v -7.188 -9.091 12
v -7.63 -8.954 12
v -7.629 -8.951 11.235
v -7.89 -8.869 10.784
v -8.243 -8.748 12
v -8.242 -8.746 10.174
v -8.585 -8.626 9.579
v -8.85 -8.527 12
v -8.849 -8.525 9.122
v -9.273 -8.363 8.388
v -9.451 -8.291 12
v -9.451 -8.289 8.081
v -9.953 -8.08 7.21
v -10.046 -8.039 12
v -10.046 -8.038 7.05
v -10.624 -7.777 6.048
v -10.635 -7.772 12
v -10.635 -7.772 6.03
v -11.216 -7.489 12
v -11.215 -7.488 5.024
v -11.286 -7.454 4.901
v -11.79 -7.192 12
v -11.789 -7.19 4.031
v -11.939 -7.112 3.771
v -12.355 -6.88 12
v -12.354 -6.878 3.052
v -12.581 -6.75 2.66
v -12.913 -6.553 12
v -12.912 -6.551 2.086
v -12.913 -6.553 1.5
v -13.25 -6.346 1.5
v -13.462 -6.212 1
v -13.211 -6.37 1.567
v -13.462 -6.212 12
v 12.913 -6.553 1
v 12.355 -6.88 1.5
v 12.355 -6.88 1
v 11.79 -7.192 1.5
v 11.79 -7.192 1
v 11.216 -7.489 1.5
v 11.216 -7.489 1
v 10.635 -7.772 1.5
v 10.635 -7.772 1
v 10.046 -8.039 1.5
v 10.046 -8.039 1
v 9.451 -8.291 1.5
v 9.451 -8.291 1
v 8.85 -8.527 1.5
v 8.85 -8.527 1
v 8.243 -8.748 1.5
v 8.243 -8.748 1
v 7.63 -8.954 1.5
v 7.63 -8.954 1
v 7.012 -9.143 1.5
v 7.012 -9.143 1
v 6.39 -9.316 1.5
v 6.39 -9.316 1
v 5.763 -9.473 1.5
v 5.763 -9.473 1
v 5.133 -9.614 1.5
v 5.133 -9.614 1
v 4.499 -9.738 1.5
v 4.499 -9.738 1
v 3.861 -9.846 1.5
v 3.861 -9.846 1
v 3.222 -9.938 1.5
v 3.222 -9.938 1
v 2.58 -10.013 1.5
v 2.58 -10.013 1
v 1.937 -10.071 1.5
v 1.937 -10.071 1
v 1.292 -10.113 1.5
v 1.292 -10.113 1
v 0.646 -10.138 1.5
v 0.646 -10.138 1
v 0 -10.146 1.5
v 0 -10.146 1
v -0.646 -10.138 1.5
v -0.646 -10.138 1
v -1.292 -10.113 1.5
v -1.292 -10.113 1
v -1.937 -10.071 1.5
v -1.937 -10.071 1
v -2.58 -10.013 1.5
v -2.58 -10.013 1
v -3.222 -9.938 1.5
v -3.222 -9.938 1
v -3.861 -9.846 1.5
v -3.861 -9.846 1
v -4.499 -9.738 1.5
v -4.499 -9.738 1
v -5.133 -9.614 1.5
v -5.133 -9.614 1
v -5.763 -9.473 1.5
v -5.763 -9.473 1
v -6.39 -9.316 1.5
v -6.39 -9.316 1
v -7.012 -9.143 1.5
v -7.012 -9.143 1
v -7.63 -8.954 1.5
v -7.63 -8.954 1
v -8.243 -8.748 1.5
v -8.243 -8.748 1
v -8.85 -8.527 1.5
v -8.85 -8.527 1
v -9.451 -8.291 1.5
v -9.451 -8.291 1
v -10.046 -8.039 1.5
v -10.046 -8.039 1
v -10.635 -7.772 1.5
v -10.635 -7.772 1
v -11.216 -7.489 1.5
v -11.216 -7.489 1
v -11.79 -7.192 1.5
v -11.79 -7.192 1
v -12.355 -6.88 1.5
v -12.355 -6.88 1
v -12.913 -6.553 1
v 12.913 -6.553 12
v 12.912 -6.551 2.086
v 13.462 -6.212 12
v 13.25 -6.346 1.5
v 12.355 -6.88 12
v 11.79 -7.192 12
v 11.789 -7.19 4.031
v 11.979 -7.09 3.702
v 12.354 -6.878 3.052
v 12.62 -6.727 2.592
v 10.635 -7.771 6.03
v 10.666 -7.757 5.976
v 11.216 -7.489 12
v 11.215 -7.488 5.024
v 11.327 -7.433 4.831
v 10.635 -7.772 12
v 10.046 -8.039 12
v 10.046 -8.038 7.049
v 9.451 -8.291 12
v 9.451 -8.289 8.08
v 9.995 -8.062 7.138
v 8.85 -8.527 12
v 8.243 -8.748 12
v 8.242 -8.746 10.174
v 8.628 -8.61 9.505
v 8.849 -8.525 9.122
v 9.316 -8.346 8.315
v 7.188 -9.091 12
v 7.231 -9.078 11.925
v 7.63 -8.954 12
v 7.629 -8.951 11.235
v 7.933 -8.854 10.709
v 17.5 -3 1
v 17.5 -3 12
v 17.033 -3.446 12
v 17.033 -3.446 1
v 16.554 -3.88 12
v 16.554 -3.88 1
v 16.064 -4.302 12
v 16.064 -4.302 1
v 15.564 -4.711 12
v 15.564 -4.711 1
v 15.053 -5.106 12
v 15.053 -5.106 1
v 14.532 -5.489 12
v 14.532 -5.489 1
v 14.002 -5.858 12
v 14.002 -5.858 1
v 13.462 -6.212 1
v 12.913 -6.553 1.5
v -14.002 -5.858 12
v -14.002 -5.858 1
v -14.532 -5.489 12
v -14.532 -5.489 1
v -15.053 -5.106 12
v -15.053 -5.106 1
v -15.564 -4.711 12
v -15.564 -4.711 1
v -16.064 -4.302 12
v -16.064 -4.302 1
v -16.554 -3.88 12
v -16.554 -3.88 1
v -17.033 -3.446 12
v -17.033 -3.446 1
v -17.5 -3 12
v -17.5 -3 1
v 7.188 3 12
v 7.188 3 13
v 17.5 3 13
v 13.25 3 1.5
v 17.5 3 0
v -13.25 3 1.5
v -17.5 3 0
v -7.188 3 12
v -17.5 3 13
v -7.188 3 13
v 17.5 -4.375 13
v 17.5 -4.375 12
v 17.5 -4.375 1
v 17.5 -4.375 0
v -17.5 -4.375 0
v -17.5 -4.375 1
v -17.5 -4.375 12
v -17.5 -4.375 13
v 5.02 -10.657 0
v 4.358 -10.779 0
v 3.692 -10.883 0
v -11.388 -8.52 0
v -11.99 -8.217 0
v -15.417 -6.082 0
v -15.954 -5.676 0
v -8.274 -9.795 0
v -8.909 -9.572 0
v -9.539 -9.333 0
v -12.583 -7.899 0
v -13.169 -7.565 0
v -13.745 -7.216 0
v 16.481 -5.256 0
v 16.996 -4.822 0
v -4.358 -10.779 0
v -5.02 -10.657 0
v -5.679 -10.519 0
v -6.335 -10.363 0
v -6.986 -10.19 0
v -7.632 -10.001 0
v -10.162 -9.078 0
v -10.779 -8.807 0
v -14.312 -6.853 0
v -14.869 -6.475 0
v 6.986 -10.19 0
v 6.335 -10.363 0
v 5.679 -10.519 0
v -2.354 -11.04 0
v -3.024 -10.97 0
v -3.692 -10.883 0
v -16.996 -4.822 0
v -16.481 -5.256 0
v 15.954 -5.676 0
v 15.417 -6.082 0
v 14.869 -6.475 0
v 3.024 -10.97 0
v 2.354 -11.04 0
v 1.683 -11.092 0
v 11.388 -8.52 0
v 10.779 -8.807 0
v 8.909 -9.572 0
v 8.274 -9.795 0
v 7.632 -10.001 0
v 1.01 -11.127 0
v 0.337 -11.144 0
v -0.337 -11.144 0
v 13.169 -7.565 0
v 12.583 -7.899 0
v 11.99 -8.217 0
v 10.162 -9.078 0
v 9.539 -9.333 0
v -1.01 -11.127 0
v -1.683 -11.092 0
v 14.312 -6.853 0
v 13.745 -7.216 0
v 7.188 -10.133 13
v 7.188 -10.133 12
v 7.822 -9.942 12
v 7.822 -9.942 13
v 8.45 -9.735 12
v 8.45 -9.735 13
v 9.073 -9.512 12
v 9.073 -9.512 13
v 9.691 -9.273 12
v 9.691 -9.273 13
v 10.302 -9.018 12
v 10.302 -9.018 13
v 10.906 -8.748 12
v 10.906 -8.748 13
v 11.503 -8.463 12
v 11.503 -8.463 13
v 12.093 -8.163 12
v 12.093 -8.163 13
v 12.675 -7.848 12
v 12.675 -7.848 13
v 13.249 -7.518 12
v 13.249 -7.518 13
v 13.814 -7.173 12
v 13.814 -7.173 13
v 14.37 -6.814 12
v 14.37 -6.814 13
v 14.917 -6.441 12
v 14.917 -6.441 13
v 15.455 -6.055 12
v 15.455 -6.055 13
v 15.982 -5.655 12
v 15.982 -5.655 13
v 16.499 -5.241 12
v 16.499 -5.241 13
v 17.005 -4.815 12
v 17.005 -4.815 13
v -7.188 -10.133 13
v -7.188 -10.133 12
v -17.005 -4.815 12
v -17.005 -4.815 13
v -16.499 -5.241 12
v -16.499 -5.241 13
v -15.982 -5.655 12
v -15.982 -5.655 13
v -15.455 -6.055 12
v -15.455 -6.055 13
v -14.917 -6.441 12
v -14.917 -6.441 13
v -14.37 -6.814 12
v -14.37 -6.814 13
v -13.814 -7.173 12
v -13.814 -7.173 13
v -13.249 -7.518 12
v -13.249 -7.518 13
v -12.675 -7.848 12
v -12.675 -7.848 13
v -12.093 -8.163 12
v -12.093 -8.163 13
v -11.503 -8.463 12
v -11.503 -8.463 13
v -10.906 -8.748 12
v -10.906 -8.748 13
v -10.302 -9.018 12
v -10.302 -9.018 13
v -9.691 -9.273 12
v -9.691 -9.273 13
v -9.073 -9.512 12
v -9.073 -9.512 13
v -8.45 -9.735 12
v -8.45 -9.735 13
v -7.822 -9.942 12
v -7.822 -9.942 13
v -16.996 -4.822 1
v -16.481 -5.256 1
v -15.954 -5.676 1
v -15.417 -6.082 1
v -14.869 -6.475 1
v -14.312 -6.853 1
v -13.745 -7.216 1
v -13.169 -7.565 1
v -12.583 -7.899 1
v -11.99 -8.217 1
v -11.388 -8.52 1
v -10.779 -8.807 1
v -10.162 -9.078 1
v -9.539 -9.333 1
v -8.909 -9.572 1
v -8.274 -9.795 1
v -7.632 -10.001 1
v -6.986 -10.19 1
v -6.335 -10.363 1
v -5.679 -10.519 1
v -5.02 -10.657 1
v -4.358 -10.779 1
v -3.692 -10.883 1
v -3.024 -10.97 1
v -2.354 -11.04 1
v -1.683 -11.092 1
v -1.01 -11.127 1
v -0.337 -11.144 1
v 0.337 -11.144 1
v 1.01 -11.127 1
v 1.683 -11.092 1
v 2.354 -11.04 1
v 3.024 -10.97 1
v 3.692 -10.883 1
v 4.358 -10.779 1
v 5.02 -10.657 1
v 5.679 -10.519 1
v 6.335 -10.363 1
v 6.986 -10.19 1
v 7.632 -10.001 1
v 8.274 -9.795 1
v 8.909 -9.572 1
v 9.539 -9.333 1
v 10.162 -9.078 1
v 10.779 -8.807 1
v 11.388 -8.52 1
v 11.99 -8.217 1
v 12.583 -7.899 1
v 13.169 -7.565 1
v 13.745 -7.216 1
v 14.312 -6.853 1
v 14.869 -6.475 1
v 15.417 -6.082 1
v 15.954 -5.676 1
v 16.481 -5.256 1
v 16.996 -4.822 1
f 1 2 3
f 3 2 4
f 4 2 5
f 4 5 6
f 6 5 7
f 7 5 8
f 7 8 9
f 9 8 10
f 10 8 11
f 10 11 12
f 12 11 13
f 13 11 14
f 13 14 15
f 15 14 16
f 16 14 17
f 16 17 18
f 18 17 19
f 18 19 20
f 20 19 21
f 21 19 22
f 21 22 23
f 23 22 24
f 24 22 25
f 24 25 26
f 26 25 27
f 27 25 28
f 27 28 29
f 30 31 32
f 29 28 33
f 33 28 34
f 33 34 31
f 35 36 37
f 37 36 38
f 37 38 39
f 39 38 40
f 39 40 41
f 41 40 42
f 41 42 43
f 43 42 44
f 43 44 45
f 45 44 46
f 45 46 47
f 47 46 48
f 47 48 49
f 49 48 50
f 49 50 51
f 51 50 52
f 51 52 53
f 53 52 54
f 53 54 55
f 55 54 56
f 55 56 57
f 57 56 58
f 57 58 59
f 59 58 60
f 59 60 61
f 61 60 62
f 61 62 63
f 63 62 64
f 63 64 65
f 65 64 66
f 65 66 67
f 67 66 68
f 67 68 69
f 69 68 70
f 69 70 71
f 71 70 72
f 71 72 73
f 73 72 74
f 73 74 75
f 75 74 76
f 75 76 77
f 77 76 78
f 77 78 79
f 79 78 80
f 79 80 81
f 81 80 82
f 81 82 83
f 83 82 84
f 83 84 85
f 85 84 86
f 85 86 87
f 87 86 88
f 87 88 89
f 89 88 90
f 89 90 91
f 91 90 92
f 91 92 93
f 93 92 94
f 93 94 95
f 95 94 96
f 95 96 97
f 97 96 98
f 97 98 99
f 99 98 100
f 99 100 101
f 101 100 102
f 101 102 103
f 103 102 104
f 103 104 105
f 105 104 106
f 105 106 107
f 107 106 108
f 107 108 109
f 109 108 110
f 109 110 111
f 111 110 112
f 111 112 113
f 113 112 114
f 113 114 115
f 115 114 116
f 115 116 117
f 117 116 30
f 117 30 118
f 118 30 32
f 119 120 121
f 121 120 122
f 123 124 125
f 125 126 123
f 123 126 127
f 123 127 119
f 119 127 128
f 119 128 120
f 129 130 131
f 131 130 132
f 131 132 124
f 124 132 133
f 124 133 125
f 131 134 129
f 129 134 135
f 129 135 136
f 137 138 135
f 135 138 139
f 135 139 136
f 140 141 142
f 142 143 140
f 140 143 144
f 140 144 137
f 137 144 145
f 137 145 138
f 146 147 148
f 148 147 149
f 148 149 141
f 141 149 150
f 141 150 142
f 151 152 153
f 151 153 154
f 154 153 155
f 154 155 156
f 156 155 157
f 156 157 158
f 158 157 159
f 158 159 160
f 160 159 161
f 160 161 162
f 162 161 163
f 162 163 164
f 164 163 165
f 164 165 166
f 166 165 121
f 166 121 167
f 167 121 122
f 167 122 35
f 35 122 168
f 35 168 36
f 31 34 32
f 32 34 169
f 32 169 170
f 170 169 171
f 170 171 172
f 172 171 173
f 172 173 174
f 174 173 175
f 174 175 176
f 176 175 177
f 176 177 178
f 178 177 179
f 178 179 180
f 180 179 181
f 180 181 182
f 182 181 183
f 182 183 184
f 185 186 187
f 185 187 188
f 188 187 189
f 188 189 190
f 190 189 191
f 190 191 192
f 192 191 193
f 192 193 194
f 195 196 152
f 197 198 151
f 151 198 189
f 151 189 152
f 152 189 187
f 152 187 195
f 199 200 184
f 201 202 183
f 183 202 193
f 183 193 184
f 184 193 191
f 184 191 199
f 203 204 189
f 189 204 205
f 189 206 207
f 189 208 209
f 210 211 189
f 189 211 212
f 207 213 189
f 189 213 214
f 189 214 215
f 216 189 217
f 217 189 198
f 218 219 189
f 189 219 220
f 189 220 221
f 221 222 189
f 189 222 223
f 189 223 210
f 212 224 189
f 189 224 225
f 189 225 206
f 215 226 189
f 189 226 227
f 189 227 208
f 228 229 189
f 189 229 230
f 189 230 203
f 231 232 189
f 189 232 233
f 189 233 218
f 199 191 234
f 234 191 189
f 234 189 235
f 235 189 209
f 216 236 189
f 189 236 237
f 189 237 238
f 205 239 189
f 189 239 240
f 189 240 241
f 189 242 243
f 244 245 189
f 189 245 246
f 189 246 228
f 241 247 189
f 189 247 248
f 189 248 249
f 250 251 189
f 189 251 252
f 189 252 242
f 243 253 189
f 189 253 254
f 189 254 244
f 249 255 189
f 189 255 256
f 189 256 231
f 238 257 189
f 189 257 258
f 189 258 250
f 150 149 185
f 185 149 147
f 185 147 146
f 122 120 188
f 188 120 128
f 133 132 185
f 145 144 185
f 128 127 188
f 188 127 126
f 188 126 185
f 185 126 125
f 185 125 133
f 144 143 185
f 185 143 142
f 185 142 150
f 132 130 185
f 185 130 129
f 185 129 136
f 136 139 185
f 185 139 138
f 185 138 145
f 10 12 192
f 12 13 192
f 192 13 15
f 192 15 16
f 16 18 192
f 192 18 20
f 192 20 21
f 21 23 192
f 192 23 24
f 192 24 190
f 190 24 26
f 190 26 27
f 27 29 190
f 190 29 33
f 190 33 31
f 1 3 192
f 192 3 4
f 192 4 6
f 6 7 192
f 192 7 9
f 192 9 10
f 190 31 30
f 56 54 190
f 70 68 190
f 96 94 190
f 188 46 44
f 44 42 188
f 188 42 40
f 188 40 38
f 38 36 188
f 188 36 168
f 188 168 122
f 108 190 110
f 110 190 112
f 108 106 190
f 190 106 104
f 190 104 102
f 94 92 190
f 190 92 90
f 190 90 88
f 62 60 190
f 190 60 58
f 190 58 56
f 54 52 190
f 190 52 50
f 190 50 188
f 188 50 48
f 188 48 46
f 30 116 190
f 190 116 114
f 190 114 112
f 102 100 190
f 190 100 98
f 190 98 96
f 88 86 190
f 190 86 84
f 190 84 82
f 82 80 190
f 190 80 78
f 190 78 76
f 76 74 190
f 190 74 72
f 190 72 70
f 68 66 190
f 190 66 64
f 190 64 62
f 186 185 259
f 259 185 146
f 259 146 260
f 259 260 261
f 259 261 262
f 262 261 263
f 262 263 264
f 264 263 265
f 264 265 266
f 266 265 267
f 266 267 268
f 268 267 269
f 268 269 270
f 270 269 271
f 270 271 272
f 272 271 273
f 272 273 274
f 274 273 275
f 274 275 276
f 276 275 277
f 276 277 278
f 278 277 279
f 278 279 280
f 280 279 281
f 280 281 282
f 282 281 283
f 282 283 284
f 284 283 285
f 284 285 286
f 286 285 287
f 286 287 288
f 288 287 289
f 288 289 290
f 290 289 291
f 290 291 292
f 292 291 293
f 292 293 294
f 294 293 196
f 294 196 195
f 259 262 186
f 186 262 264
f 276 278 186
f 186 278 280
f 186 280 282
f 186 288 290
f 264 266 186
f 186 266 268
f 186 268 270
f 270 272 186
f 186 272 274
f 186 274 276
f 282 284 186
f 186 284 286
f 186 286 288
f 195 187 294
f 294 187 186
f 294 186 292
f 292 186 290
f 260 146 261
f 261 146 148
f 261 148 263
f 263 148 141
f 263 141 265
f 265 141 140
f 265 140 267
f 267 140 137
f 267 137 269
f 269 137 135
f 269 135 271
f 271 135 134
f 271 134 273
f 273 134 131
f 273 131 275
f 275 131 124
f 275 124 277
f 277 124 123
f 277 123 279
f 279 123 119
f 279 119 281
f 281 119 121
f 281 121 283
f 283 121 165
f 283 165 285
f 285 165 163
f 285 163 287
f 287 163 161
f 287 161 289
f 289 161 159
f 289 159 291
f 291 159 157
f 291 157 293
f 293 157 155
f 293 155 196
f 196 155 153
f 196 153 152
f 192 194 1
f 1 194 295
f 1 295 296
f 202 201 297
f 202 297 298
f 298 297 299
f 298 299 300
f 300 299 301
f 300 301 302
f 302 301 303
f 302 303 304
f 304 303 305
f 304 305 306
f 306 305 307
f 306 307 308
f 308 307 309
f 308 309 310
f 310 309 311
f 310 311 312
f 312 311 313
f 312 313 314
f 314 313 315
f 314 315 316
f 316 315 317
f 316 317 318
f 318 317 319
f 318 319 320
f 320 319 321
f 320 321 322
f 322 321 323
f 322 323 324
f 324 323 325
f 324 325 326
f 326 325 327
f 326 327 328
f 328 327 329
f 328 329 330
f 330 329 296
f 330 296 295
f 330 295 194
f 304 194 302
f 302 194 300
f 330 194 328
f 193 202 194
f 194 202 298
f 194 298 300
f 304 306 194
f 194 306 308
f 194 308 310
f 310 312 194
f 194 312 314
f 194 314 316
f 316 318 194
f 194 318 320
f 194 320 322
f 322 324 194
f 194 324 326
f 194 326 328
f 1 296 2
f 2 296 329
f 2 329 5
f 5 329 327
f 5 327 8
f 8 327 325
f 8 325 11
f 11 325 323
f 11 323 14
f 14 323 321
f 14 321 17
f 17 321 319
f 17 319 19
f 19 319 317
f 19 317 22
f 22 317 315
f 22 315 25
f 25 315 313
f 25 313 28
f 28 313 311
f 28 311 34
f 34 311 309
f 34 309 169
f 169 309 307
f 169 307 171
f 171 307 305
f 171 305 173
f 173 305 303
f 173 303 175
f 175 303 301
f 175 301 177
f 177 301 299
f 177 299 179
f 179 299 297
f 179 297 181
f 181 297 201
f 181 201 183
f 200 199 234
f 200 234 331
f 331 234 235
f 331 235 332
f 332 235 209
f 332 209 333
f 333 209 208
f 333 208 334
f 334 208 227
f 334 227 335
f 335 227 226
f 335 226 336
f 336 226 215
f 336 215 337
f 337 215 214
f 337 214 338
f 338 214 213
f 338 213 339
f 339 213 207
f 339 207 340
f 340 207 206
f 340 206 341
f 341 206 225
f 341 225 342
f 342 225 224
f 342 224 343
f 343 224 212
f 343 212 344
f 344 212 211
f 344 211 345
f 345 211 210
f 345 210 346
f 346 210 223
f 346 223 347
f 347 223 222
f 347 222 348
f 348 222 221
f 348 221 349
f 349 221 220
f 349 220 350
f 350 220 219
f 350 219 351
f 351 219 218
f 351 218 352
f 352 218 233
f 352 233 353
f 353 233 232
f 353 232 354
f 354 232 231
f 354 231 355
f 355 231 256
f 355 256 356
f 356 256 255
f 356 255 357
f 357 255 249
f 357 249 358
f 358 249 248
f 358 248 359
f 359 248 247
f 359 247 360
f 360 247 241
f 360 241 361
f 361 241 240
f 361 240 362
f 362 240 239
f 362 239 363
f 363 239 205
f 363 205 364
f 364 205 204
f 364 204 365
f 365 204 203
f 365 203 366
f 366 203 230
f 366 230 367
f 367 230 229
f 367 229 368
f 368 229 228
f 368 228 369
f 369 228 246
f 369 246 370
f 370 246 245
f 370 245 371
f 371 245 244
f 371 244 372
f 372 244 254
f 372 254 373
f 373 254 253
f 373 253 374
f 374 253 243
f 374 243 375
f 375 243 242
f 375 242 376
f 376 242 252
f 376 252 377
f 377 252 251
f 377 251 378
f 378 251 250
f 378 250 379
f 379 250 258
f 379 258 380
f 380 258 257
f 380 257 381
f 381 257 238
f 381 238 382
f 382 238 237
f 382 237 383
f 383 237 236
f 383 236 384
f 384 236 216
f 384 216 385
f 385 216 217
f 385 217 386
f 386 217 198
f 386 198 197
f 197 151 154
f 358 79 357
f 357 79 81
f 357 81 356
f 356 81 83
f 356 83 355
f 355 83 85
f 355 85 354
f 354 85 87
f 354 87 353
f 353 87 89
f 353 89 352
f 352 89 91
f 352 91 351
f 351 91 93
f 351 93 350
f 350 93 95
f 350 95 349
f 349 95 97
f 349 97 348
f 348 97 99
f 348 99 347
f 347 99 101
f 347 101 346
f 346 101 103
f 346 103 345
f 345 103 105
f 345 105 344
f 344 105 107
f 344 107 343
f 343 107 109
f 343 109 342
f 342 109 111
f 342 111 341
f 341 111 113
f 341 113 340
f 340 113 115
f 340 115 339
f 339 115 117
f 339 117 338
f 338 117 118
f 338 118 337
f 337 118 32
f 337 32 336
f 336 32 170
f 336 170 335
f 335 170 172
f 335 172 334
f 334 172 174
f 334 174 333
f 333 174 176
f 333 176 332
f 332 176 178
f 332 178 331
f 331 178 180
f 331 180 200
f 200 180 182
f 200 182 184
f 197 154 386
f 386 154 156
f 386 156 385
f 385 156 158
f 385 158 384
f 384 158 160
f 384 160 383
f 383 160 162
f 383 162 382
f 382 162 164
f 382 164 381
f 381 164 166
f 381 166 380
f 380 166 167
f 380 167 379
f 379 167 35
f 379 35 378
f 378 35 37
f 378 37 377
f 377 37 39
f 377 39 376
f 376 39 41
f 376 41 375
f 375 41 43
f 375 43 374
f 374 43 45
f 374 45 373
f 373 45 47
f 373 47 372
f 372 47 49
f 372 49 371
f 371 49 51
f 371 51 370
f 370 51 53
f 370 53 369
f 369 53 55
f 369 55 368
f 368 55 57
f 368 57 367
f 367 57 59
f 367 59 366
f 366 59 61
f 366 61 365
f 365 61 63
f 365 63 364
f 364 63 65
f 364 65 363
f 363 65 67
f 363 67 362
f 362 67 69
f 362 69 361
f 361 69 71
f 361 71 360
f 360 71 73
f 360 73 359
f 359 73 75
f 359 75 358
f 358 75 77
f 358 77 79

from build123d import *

# Parameters (mm, degrees)
SKETCH1_W            = 35
SKETCH1_H            = 6
BOSS_EXTRUDE1_DEPTH  = 12
BOSS_EXTRUDE2_DEPTH  = 12
SKETCH4_W            = 6
SKETCH4_H            = 13.146428929
CUT_EXTRUDE1_DEPTH   = 8
CUT_EXTRUDE2_DEPTH   = 8
LPATTERN2_COUNT      = 10
LPATTERN2_PITCH      = 2
MIRROR1_COPY_1_DEPTH = 8
MIRROR1_COPY_2_DEPTH = 8
MIRROR1_COPY_3_DEPTH = 8
MIRROR1_COPY_4_DEPTH = 8
MIRROR1_COPY_5_DEPTH = 8
MIRROR1_COPY_6_DEPTH = 8
MIRROR1_COPY_7_DEPTH = 8
MIRROR1_COPY_8_DEPTH = 8
MIRROR1_COPY_9_DEPTH = 8
CUT_EXTRUDE3_DEPTH   = 25.961542292
BOSS_EXTRUDE3_DEPTH  = 1
BOSS_EXTRUDE4_DEPTH  = 1


with BuildPart() as part:
    # Sketch1 → Boss-Extrude1 (new body)
    with BuildSketch(Plane.XY):
        Rectangle(SKETCH1_W, SKETCH1_H)
    extrude(amount=BOSS_EXTRUDE1_DEPTH)

    # Sketch2 → Boss-Extrude2 (add)
    with BuildSketch(Plane.XY.offset(12)):
        with BuildLine():
            Line((-17.5, -3), (17.5, -3))
            ThreePointArc((17.5, -3), (0, -10.146428929), (-17.5, -3))
        make_face()
    extrude(amount=-BOSS_EXTRUDE2_DEPTH)

    # Sketch4 → Cut-Extrude1 (cut)
    with BuildSketch(Plane.XY.offset(12)):
        with Locations((0, -3.573214465)):
            Rectangle(SKETCH4_W, SKETCH4_H)
    extrude(amount=-CUT_EXTRUDE1_DEPTH, mode=Mode.SUBTRACT)

    # Sketch5 → Cut-Extrude2 (cut)
    with BuildSketch(Plane.XY.offset(12)):
        with BuildLine():
            Line((3, 2), (3, 4))
            ThreePointArc((3, 4), (3.084360941, 3.705850588), (3.311797753, 3.501123596))
            ThreePointArc((3.311797753, 3.501123596), (3.461937846, 3.442388286), (3.619565217, 3.408543109))
            ThreePointArc((3.619565217, 3.408543109), (3.712771412, 3.358731646), (3.75, 3.259824575))
            Line((3.75, 3.259824575), (3.75, 2.740175425))
            ThreePointArc((3.75, 2.740175425), (3.712771412, 2.641268354), (3.619565217, 2.591456891))
            ThreePointArc((3.619565217, 2.591456891), (3.461937846, 2.557611714), (3.311797753, 2.498876404))
            ThreePointArc((3.311797753, 2.498876404), (3.084360941, 2.294149412), (3, 2))
        make_face()
    cut_extrude2 = extrude(amount=-CUT_EXTRUDE2_DEPTH, mode=Mode.SUBTRACT)

    # LPattern2: Cut-Extrude2 ×10
    with Locations(*[(0, -i * LPATTERN2_PITCH, 0) for i in range(1, LPATTERN2_COUNT)]):
        add(cut_extrude2, mode=Mode.SUBTRACT)

    # Mirror1: Cut-Extrude2 across plane
    add(cut_extrude2.mirror(Plane(origin=(0, 0, 0), x_dir=(0, 0, 1), z_dir=(1, 0, 0))), mode=Mode.SUBTRACT)

    # Mirror1 copy 1 sketch → Mirror1 copy 1 (cut)
    with BuildSketch(Plane(origin=(0, -2, 12), x_dir=(-1, 0, 0), z_dir=(0, 0, 1))):
        with BuildLine():
            Line((3, -2), (3, -4))
            ThreePointArc((3, -4), (3.084360941, -3.705850588), (3.311797753, -3.501123596))
            ThreePointArc((3.311797753, -3.501123596), (3.461937846, -3.442388286), (3.619565217, -3.408543109))
            ThreePointArc((3.619565217, -3.408543109), (3.712771412, -3.358731646), (3.75, -3.259824575))
            Line((3.75, -3.259824575), (3.75, -2.740175425))
            ThreePointArc((3.75, -2.740175425), (3.712771412, -2.641268354), (3.619565217, -2.591456891))
            ThreePointArc((3.619565217, -2.591456891), (3.461937846, -2.557611714), (3.311797753, -2.498876404))
            ThreePointArc((3.311797753, -2.498876404), (3.084360941, -2.294149412), (3, -2))
        make_face()
    extrude(amount=-MIRROR1_COPY_1_DEPTH, mode=Mode.SUBTRACT)

    # Mirror1 copy 2 sketch → Mirror1 copy 2 (cut)
    with BuildSketch(Plane(origin=(0, -4, 12), x_dir=(-1, 0, 0), z_dir=(0, 0, 1))):
        with BuildLine():
            Line((3, -2), (3, -4))
            ThreePointArc((3, -4), (3.084360941, -3.705850588), (3.311797753, -3.501123596))
            ThreePointArc((3.311797753, -3.501123596), (3.461937846, -3.442388286), (3.619565217, -3.408543109))
            ThreePointArc((3.619565217, -3.408543109), (3.712771412, -3.358731646), (3.75, -3.259824575))
            Line((3.75, -3.259824575), (3.75, -2.740175425))
            ThreePointArc((3.75, -2.740175425), (3.712771412, -2.641268354), (3.619565217, -2.591456891))
            ThreePointArc((3.619565217, -2.591456891), (3.461937846, -2.557611714), (3.311797753, -2.498876404))
            ThreePointArc((3.311797753, -2.498876404), (3.084360941, -2.294149412), (3, -2))
        make_face()
    extrude(amount=-MIRROR1_COPY_2_DEPTH, mode=Mode.SUBTRACT)

    # Mirror1 copy 3 sketch → Mirror1 copy 3 (cut)
    with BuildSketch(Plane(origin=(0, -6, 12), x_dir=(-1, 0, 0), z_dir=(0, 0, 1))):
        with BuildLine():
            Line((3, -2), (3, -4))
            ThreePointArc((3, -4), (3.084360941, -3.705850588), (3.311797753, -3.501123596))
            ThreePointArc((3.311797753, -3.501123596), (3.461937846, -3.442388286), (3.619565217, -3.408543109))
            ThreePointArc((3.619565217, -3.408543109), (3.712771412, -3.358731646), (3.75, -3.259824575))
            Line((3.75, -3.259824575), (3.75, -2.740175425))
            ThreePointArc((3.75, -2.740175425), (3.712771412, -2.641268354), (3.619565217, -2.591456891))
            ThreePointArc((3.619565217, -2.591456891), (3.461937846, -2.557611714), (3.311797753, -2.498876404))
            ThreePointArc((3.311797753, -2.498876404), (3.084360941, -2.294149412), (3, -2))
        make_face()
    extrude(amount=-MIRROR1_COPY_3_DEPTH, mode=Mode.SUBTRACT)

    # Mirror1 copy 4 sketch → Mirror1 copy 4 (cut)
    with BuildSketch(Plane(origin=(0, -8, 12), x_dir=(-1, 0, 0), z_dir=(0, 0, 1))):
        with BuildLine():
            Line((3, -2), (3, -4))
            ThreePointArc((3, -4), (3.084360941, -3.705850588), (3.311797753, -3.501123596))
            ThreePointArc((3.311797753, -3.501123596), (3.461937846, -3.442388286), (3.619565217, -3.408543109))
            ThreePointArc((3.619565217, -3.408543109), (3.712771412, -3.358731646), (3.75, -3.259824575))
            Line((3.75, -3.259824575), (3.75, -2.740175425))
            ThreePointArc((3.75, -2.740175425), (3.712771412, -2.641268354), (3.619565217, -2.591456891))
            ThreePointArc((3.619565217, -2.591456891), (3.461937846, -2.557611714), (3.311797753, -2.498876404))
            ThreePointArc((3.311797753, -2.498876404), (3.084360941, -2.294149412), (3, -2))
        make_face()
    extrude(amount=-MIRROR1_COPY_4_DEPTH, mode=Mode.SUBTRACT)

    # Mirror1 copy 5 sketch → Mirror1 copy 5 (cut)
    with BuildSketch(Plane(origin=(0, -10, 12), x_dir=(-1, 0, 0), z_dir=(0, 0, 1))):
        with BuildLine():
            Line((3, -2), (3, -4))
            ThreePointArc((3, -4), (3.084360941, -3.705850588), (3.311797753, -3.501123596))
            ThreePointArc((3.311797753, -3.501123596), (3.461937846, -3.442388286), (3.619565217, -3.408543109))
            ThreePointArc((3.619565217, -3.408543109), (3.712771412, -3.358731646), (3.75, -3.259824575))
            Line((3.75, -3.259824575), (3.75, -2.740175425))
            ThreePointArc((3.75, -2.740175425), (3.712771412, -2.641268354), (3.619565217, -2.591456891))
            ThreePointArc((3.619565217, -2.591456891), (3.461937846, -2.557611714), (3.311797753, -2.498876404))
            ThreePointArc((3.311797753, -2.498876404), (3.084360941, -2.294149412), (3, -2))
        make_face()
    extrude(amount=-MIRROR1_COPY_5_DEPTH, mode=Mode.SUBTRACT)

    # Mirror1 copy 6 sketch → Mirror1 copy 6 (cut)
    with BuildSketch(Plane(origin=(0, -12, 12), x_dir=(-1, 0, 0), z_dir=(0, 0, 1))):
        with BuildLine():
            Line((3, -2), (3, -4))
            ThreePointArc((3, -4), (3.084360941, -3.705850588), (3.311797753, -3.501123596))
            ThreePointArc((3.311797753, -3.501123596), (3.461937846, -3.442388286), (3.619565217, -3.408543109))
            ThreePointArc((3.619565217, -3.408543109), (3.712771412, -3.358731646), (3.75, -3.259824575))
            Line((3.75, -3.259824575), (3.75, -2.740175425))
            ThreePointArc((3.75, -2.740175425), (3.712771412, -2.641268354), (3.619565217, -2.591456891))
            ThreePointArc((3.619565217, -2.591456891), (3.461937846, -2.557611714), (3.311797753, -2.498876404))
            ThreePointArc((3.311797753, -2.498876404), (3.084360941, -2.294149412), (3, -2))
        make_face()
    extrude(amount=-MIRROR1_COPY_6_DEPTH, mode=Mode.SUBTRACT)

    # Mirror1 copy 7 sketch → Mirror1 copy 7 (cut)
    with BuildSketch(Plane(origin=(0, -14, 12), x_dir=(-1, 0, 0), z_dir=(0, 0, 1))):
        with BuildLine():
            Line((3, -2), (3, -4))
            ThreePointArc((3, -4), (3.084360941, -3.705850588), (3.311797753, -3.501123596))
            ThreePointArc((3.311797753, -3.501123596), (3.461937846, -3.442388286), (3.619565217, -3.408543109))
            ThreePointArc((3.619565217, -3.408543109), (3.712771412, -3.358731646), (3.75, -3.259824575))
            Line((3.75, -3.259824575), (3.75, -2.740175425))
            ThreePointArc((3.75, -2.740175425), (3.712771412, -2.641268354), (3.619565217, -2.591456891))
            ThreePointArc((3.619565217, -2.591456891), (3.461937846, -2.557611714), (3.311797753, -2.498876404))
            ThreePointArc((3.311797753, -2.498876404), (3.084360941, -2.294149412), (3, -2))
        make_face()
    extrude(amount=-MIRROR1_COPY_7_DEPTH, mode=Mode.SUBTRACT)

    # Mirror1 copy 8 sketch → Mirror1 copy 8 (cut)
    with BuildSketch(Plane(origin=(0, -16, 12), x_dir=(-1, 0, 0), z_dir=(0, 0, 1))):
        with BuildLine():
            Line((3, -2), (3, -4))
            ThreePointArc((3, -4), (3.084360941, -3.705850588), (3.311797753, -3.501123596))
            ThreePointArc((3.311797753, -3.501123596), (3.461937846, -3.442388286), (3.619565217, -3.408543109))
            ThreePointArc((3.619565217, -3.408543109), (3.712771412, -3.358731646), (3.75, -3.259824575))
            Line((3.75, -3.259824575), (3.75, -2.740175425))
            ThreePointArc((3.75, -2.740175425), (3.712771412, -2.641268354), (3.619565217, -2.591456891))
            ThreePointArc((3.619565217, -2.591456891), (3.461937846, -2.557611714), (3.311797753, -2.498876404))
            ThreePointArc((3.311797753, -2.498876404), (3.084360941, -2.294149412), (3, -2))
        make_face()
    extrude(amount=-MIRROR1_COPY_8_DEPTH, mode=Mode.SUBTRACT)

    # Mirror1 copy 9 sketch → Mirror1 copy 9 (cut)
    with BuildSketch(Plane(origin=(0, -18, 12), x_dir=(-1, 0, 0), z_dir=(0, 0, 1))):
        with BuildLine():
            Line((3, -2), (3, -4))
            ThreePointArc((3, -4), (3.084360941, -3.705850588), (3.311797753, -3.501123596))
            ThreePointArc((3.311797753, -3.501123596), (3.461937846, -3.442388286), (3.619565217, -3.408543109))
            ThreePointArc((3.619565217, -3.408543109), (3.712771412, -3.358731646), (3.75, -3.259824575))
            Line((3.75, -3.259824575), (3.75, -2.740175425))
            ThreePointArc((3.75, -2.740175425), (3.712771412, -2.641268354), (3.619565217, -2.591456891))
            ThreePointArc((3.619565217, -2.591456891), (3.461937846, -2.557611714), (3.311797753, -2.498876404))
            ThreePointArc((3.311797753, -2.498876404), (3.084360941, -2.294149412), (3, -2))
        make_face()
    extrude(amount=-MIRROR1_COPY_9_DEPTH, mode=Mode.SUBTRACT)

    # Sketch6 → Cut-Extrude3 (cut, through all)
    with BuildSketch(Plane(origin=(0, 3, 0), x_dir=(1, 0, 0), z_dir=(0, 1, 0))):
        Polygon((7.187822174, -12), (-7.187822174, -12), (-13.25, -1.5), (13.25, -1.5), align=None)
    extrude(amount=-CUT_EXTRUDE3_DEPTH, mode=Mode.SUBTRACT)

    # Sketch7 → Boss-Extrude3 (add)
    with BuildSketch(Plane.XY.offset(12)):
        with BuildLine():
            Line((17.5, 3), (7.187822174, 3))
            Line((7.187822174, 3), (7.187822174, -10.133129639))
            ThreePointArc((7.187822174, -10.133129639), (12.675182552, -7.847524657), (17.5, -4.375313452))
            Line((17.5, -4.375313452), (17.5, 3))
        make_face()
    boss_extrude3 = extrude(amount=BOSS_EXTRUDE3_DEPTH)

    # Mirror2: Boss-Extrude3 across plane
    add(boss_extrude3.mirror(Plane(origin=(0, 0, 0), x_dir=(0, 0, 1), z_dir=(1, 0, 0))))

    # Sketch8 → Boss-Extrude4 (add)
    with BuildSketch(Plane(origin=(0, 0, 0), x_dir=(-1, 0, 0), z_dir=(0, 0, -1))):
        with BuildLine():
            Line((17.5, -4.375313452), (17.5, -3))
            ThreePointArc((17.5, -3), (0, -10.146428929), (-17.5, -3))
            Line((-17.5, -3), (-17.5, -4.375313452))
            ThreePointArc((-17.5, -4.375313452), (0, -11.146428929), (17.5, -4.375313452))
        make_face()
    extrude(amount=-BOSS_EXTRUDE4_DEPTH)


solid = part.part
